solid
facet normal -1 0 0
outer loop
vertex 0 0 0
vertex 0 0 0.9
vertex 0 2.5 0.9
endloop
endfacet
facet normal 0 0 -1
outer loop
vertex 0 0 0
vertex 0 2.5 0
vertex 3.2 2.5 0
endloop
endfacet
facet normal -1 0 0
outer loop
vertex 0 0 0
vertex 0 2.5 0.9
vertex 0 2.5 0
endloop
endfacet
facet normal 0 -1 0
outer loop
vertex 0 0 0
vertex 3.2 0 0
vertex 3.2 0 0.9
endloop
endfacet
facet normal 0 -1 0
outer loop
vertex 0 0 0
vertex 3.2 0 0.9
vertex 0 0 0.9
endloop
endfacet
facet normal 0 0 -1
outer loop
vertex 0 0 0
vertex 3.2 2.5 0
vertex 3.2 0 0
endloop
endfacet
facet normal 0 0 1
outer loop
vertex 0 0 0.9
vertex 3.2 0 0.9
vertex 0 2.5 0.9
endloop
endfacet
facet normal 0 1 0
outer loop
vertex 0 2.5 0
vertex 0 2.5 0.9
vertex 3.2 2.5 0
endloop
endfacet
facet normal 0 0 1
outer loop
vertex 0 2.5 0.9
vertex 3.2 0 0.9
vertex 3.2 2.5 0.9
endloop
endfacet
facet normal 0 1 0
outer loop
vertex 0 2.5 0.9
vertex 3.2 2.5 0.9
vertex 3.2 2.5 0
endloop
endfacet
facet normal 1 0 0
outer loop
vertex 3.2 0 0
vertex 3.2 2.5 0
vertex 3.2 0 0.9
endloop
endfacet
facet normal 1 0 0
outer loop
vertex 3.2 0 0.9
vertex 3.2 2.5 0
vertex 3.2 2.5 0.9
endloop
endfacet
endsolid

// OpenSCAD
/* Warning, this is a very basic generator with a lot of approximation 
input data : [VDFN, 2YX, 3.2x2.5x0.9mm, 6, , A, C04-00484A]
generated by com.zoubworld.electronics.cad.model3d.Basic
Date : Sun Feb 15 10:50:48 CET 2026
*/

//body
color("black")
translate([0,0,0])
cube([3.2,2.5,0.9], center=false);
